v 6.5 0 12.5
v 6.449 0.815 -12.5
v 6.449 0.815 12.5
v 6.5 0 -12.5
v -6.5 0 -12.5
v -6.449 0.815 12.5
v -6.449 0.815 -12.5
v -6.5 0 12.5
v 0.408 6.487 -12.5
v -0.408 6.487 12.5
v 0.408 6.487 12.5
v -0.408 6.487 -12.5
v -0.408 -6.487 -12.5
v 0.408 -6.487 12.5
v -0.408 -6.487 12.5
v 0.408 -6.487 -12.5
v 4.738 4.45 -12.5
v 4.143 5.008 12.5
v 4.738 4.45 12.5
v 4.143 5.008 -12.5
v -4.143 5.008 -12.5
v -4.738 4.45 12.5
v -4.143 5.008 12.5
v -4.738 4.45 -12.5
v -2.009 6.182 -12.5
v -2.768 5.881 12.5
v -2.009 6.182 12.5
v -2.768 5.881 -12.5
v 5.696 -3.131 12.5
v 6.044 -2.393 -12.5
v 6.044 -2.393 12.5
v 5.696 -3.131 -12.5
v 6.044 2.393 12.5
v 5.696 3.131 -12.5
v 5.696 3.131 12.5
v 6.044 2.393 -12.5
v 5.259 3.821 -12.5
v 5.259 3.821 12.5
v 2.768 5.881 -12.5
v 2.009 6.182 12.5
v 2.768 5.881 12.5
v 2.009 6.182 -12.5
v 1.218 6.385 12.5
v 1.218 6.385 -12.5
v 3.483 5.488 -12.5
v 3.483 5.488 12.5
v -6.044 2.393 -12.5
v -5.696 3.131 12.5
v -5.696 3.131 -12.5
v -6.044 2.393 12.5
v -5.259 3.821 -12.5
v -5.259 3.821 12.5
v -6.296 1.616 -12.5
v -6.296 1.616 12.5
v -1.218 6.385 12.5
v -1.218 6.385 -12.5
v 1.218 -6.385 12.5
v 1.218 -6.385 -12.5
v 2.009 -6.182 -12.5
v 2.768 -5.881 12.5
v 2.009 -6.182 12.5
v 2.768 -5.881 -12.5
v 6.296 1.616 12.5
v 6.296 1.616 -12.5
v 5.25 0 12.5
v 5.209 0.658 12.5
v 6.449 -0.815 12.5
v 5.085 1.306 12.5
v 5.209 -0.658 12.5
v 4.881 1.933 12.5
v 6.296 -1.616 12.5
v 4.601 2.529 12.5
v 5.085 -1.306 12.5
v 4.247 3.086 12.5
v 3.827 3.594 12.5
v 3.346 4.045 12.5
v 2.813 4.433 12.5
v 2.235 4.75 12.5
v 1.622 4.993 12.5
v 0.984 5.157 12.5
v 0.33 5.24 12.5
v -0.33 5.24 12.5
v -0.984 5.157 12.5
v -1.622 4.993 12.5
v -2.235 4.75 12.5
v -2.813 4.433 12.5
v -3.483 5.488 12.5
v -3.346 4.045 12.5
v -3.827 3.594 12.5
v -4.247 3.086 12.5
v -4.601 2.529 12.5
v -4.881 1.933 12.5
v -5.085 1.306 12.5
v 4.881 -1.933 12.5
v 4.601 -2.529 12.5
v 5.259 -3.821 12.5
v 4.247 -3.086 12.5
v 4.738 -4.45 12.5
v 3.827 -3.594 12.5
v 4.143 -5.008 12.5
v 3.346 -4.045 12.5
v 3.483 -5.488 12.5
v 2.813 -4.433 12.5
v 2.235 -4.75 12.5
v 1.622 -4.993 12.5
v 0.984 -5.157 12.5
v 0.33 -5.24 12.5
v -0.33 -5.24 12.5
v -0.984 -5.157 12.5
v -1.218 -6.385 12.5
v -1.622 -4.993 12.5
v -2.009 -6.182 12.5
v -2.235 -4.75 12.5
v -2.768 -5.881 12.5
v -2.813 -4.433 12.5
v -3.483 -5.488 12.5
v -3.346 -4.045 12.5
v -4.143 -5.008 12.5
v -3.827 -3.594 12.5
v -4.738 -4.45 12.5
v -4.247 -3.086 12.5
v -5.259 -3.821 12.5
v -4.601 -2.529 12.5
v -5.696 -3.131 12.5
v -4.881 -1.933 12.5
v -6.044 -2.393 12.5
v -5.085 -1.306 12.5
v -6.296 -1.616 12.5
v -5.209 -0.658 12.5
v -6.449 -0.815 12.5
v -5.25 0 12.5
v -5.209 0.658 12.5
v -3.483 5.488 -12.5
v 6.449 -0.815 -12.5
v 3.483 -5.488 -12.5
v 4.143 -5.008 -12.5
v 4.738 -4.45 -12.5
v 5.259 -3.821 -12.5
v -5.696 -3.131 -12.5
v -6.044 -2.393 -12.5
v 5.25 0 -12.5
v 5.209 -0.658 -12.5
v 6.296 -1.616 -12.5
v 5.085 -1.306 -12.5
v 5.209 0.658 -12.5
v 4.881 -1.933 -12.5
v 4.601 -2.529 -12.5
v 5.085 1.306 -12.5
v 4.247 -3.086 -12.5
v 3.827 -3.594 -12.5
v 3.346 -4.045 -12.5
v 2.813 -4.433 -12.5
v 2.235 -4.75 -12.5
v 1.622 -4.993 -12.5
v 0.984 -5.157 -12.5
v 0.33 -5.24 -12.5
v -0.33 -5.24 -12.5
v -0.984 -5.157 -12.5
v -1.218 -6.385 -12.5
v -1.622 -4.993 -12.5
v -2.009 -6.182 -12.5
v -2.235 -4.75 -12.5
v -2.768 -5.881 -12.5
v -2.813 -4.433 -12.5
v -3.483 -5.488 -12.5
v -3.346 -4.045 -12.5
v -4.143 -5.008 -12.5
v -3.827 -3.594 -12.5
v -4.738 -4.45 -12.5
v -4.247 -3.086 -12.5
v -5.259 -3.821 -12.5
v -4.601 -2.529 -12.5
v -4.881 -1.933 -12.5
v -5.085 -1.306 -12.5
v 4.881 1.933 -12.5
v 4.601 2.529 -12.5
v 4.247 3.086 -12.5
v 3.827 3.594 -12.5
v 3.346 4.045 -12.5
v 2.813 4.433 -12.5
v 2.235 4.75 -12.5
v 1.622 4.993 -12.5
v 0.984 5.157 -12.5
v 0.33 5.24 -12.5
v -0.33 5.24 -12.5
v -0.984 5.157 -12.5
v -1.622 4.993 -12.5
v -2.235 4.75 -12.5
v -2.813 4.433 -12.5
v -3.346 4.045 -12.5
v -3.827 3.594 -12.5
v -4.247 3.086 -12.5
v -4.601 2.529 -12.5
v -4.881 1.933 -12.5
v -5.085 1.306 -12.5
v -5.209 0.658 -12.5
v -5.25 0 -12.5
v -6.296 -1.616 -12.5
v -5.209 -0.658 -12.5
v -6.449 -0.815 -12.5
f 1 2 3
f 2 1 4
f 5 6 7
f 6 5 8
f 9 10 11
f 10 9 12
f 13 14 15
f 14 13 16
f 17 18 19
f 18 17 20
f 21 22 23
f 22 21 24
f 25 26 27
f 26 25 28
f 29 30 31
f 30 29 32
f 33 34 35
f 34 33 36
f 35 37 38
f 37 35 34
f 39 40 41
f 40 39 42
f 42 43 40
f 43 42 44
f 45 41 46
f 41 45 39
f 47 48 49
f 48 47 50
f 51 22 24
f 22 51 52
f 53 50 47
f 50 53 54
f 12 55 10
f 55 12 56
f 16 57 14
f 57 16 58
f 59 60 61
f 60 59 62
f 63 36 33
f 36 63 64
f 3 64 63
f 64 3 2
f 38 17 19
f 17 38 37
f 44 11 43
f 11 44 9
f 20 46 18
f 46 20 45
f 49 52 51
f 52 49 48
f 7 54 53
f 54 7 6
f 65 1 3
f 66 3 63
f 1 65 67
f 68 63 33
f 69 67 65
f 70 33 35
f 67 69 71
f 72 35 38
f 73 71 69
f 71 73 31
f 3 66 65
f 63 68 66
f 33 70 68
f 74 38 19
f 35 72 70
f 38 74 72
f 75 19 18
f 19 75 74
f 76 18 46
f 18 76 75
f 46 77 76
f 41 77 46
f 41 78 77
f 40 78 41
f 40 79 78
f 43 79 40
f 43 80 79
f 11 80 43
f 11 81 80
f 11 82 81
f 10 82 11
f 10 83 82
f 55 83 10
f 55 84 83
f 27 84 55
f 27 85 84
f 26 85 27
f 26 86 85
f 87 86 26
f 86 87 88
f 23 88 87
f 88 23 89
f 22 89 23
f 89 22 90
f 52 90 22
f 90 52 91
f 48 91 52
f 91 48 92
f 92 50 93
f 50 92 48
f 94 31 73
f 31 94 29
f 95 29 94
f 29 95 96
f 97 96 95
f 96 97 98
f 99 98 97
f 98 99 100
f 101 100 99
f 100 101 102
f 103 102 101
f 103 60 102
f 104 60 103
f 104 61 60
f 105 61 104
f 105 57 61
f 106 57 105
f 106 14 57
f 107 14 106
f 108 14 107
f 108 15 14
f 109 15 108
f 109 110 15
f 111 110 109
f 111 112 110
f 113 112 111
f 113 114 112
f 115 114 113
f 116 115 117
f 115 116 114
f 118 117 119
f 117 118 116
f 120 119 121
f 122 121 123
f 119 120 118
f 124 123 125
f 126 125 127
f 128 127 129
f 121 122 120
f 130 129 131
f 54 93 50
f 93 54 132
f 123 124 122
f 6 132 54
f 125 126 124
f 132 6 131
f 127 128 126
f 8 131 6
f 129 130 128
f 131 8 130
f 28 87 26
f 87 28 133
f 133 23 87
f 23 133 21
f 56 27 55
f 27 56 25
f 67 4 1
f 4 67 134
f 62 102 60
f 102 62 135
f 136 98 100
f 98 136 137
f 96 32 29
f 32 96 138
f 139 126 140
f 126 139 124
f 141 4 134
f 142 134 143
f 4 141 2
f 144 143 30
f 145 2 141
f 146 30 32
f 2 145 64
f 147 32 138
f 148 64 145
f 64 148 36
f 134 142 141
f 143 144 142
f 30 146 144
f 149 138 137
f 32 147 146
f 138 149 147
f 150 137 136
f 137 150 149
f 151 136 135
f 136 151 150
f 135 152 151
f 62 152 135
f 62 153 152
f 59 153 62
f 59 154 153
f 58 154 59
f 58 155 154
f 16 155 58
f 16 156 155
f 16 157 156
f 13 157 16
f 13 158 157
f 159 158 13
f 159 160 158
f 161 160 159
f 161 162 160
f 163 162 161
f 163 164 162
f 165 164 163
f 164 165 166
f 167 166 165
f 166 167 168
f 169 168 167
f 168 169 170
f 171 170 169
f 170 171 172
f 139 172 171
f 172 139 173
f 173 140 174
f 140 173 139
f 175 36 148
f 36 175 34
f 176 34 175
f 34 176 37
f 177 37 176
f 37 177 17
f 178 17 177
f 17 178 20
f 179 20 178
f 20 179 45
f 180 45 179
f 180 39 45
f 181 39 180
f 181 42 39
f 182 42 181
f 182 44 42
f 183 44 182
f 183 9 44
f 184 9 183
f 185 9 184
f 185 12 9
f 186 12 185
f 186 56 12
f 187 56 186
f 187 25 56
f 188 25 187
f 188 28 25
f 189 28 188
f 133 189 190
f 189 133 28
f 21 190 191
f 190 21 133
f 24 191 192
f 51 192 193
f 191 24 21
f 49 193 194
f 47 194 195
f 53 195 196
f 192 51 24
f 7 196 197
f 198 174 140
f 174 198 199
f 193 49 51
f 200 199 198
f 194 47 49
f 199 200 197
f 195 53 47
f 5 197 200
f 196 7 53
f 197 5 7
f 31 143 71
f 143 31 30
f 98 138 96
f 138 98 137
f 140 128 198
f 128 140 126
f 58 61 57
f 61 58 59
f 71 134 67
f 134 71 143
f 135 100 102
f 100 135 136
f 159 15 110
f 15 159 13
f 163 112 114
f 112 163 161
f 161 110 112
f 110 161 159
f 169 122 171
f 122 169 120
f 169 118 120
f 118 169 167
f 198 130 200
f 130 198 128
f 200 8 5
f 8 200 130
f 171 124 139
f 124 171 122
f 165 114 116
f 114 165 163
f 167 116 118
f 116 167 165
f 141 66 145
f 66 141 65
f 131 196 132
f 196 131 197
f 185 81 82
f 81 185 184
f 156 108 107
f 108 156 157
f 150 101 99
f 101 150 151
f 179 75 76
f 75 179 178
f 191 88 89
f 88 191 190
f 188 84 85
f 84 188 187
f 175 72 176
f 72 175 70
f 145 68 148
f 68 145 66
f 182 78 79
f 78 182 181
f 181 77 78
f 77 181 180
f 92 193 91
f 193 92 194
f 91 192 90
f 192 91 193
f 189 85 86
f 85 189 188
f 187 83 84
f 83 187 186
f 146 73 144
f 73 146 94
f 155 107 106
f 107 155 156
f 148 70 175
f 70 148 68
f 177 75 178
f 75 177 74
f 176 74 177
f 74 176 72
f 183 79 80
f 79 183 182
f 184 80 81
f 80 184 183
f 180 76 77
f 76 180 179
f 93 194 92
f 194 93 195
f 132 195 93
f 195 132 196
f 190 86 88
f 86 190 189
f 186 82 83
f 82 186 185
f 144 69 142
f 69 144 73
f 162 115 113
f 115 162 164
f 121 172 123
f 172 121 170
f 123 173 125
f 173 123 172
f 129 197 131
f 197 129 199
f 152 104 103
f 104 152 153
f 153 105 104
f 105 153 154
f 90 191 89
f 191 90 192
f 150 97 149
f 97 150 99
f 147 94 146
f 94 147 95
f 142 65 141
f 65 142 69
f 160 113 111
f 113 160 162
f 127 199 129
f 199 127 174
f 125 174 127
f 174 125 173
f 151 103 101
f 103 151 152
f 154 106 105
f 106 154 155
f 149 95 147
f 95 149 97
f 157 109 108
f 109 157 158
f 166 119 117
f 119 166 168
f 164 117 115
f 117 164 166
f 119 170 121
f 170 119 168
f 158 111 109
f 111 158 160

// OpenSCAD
$fn = 50;


difference() {
	union() {
		translate(v = [0, 0, -12.5000000000]) {
			cylinder(h = 25, r = 6.5000000000);
		}
	}
	union() {
		translate(v = [0, 0, -100.0000000000]) {
			cylinder(h = 200, r = 5.2500000000);
		}
	}
}
